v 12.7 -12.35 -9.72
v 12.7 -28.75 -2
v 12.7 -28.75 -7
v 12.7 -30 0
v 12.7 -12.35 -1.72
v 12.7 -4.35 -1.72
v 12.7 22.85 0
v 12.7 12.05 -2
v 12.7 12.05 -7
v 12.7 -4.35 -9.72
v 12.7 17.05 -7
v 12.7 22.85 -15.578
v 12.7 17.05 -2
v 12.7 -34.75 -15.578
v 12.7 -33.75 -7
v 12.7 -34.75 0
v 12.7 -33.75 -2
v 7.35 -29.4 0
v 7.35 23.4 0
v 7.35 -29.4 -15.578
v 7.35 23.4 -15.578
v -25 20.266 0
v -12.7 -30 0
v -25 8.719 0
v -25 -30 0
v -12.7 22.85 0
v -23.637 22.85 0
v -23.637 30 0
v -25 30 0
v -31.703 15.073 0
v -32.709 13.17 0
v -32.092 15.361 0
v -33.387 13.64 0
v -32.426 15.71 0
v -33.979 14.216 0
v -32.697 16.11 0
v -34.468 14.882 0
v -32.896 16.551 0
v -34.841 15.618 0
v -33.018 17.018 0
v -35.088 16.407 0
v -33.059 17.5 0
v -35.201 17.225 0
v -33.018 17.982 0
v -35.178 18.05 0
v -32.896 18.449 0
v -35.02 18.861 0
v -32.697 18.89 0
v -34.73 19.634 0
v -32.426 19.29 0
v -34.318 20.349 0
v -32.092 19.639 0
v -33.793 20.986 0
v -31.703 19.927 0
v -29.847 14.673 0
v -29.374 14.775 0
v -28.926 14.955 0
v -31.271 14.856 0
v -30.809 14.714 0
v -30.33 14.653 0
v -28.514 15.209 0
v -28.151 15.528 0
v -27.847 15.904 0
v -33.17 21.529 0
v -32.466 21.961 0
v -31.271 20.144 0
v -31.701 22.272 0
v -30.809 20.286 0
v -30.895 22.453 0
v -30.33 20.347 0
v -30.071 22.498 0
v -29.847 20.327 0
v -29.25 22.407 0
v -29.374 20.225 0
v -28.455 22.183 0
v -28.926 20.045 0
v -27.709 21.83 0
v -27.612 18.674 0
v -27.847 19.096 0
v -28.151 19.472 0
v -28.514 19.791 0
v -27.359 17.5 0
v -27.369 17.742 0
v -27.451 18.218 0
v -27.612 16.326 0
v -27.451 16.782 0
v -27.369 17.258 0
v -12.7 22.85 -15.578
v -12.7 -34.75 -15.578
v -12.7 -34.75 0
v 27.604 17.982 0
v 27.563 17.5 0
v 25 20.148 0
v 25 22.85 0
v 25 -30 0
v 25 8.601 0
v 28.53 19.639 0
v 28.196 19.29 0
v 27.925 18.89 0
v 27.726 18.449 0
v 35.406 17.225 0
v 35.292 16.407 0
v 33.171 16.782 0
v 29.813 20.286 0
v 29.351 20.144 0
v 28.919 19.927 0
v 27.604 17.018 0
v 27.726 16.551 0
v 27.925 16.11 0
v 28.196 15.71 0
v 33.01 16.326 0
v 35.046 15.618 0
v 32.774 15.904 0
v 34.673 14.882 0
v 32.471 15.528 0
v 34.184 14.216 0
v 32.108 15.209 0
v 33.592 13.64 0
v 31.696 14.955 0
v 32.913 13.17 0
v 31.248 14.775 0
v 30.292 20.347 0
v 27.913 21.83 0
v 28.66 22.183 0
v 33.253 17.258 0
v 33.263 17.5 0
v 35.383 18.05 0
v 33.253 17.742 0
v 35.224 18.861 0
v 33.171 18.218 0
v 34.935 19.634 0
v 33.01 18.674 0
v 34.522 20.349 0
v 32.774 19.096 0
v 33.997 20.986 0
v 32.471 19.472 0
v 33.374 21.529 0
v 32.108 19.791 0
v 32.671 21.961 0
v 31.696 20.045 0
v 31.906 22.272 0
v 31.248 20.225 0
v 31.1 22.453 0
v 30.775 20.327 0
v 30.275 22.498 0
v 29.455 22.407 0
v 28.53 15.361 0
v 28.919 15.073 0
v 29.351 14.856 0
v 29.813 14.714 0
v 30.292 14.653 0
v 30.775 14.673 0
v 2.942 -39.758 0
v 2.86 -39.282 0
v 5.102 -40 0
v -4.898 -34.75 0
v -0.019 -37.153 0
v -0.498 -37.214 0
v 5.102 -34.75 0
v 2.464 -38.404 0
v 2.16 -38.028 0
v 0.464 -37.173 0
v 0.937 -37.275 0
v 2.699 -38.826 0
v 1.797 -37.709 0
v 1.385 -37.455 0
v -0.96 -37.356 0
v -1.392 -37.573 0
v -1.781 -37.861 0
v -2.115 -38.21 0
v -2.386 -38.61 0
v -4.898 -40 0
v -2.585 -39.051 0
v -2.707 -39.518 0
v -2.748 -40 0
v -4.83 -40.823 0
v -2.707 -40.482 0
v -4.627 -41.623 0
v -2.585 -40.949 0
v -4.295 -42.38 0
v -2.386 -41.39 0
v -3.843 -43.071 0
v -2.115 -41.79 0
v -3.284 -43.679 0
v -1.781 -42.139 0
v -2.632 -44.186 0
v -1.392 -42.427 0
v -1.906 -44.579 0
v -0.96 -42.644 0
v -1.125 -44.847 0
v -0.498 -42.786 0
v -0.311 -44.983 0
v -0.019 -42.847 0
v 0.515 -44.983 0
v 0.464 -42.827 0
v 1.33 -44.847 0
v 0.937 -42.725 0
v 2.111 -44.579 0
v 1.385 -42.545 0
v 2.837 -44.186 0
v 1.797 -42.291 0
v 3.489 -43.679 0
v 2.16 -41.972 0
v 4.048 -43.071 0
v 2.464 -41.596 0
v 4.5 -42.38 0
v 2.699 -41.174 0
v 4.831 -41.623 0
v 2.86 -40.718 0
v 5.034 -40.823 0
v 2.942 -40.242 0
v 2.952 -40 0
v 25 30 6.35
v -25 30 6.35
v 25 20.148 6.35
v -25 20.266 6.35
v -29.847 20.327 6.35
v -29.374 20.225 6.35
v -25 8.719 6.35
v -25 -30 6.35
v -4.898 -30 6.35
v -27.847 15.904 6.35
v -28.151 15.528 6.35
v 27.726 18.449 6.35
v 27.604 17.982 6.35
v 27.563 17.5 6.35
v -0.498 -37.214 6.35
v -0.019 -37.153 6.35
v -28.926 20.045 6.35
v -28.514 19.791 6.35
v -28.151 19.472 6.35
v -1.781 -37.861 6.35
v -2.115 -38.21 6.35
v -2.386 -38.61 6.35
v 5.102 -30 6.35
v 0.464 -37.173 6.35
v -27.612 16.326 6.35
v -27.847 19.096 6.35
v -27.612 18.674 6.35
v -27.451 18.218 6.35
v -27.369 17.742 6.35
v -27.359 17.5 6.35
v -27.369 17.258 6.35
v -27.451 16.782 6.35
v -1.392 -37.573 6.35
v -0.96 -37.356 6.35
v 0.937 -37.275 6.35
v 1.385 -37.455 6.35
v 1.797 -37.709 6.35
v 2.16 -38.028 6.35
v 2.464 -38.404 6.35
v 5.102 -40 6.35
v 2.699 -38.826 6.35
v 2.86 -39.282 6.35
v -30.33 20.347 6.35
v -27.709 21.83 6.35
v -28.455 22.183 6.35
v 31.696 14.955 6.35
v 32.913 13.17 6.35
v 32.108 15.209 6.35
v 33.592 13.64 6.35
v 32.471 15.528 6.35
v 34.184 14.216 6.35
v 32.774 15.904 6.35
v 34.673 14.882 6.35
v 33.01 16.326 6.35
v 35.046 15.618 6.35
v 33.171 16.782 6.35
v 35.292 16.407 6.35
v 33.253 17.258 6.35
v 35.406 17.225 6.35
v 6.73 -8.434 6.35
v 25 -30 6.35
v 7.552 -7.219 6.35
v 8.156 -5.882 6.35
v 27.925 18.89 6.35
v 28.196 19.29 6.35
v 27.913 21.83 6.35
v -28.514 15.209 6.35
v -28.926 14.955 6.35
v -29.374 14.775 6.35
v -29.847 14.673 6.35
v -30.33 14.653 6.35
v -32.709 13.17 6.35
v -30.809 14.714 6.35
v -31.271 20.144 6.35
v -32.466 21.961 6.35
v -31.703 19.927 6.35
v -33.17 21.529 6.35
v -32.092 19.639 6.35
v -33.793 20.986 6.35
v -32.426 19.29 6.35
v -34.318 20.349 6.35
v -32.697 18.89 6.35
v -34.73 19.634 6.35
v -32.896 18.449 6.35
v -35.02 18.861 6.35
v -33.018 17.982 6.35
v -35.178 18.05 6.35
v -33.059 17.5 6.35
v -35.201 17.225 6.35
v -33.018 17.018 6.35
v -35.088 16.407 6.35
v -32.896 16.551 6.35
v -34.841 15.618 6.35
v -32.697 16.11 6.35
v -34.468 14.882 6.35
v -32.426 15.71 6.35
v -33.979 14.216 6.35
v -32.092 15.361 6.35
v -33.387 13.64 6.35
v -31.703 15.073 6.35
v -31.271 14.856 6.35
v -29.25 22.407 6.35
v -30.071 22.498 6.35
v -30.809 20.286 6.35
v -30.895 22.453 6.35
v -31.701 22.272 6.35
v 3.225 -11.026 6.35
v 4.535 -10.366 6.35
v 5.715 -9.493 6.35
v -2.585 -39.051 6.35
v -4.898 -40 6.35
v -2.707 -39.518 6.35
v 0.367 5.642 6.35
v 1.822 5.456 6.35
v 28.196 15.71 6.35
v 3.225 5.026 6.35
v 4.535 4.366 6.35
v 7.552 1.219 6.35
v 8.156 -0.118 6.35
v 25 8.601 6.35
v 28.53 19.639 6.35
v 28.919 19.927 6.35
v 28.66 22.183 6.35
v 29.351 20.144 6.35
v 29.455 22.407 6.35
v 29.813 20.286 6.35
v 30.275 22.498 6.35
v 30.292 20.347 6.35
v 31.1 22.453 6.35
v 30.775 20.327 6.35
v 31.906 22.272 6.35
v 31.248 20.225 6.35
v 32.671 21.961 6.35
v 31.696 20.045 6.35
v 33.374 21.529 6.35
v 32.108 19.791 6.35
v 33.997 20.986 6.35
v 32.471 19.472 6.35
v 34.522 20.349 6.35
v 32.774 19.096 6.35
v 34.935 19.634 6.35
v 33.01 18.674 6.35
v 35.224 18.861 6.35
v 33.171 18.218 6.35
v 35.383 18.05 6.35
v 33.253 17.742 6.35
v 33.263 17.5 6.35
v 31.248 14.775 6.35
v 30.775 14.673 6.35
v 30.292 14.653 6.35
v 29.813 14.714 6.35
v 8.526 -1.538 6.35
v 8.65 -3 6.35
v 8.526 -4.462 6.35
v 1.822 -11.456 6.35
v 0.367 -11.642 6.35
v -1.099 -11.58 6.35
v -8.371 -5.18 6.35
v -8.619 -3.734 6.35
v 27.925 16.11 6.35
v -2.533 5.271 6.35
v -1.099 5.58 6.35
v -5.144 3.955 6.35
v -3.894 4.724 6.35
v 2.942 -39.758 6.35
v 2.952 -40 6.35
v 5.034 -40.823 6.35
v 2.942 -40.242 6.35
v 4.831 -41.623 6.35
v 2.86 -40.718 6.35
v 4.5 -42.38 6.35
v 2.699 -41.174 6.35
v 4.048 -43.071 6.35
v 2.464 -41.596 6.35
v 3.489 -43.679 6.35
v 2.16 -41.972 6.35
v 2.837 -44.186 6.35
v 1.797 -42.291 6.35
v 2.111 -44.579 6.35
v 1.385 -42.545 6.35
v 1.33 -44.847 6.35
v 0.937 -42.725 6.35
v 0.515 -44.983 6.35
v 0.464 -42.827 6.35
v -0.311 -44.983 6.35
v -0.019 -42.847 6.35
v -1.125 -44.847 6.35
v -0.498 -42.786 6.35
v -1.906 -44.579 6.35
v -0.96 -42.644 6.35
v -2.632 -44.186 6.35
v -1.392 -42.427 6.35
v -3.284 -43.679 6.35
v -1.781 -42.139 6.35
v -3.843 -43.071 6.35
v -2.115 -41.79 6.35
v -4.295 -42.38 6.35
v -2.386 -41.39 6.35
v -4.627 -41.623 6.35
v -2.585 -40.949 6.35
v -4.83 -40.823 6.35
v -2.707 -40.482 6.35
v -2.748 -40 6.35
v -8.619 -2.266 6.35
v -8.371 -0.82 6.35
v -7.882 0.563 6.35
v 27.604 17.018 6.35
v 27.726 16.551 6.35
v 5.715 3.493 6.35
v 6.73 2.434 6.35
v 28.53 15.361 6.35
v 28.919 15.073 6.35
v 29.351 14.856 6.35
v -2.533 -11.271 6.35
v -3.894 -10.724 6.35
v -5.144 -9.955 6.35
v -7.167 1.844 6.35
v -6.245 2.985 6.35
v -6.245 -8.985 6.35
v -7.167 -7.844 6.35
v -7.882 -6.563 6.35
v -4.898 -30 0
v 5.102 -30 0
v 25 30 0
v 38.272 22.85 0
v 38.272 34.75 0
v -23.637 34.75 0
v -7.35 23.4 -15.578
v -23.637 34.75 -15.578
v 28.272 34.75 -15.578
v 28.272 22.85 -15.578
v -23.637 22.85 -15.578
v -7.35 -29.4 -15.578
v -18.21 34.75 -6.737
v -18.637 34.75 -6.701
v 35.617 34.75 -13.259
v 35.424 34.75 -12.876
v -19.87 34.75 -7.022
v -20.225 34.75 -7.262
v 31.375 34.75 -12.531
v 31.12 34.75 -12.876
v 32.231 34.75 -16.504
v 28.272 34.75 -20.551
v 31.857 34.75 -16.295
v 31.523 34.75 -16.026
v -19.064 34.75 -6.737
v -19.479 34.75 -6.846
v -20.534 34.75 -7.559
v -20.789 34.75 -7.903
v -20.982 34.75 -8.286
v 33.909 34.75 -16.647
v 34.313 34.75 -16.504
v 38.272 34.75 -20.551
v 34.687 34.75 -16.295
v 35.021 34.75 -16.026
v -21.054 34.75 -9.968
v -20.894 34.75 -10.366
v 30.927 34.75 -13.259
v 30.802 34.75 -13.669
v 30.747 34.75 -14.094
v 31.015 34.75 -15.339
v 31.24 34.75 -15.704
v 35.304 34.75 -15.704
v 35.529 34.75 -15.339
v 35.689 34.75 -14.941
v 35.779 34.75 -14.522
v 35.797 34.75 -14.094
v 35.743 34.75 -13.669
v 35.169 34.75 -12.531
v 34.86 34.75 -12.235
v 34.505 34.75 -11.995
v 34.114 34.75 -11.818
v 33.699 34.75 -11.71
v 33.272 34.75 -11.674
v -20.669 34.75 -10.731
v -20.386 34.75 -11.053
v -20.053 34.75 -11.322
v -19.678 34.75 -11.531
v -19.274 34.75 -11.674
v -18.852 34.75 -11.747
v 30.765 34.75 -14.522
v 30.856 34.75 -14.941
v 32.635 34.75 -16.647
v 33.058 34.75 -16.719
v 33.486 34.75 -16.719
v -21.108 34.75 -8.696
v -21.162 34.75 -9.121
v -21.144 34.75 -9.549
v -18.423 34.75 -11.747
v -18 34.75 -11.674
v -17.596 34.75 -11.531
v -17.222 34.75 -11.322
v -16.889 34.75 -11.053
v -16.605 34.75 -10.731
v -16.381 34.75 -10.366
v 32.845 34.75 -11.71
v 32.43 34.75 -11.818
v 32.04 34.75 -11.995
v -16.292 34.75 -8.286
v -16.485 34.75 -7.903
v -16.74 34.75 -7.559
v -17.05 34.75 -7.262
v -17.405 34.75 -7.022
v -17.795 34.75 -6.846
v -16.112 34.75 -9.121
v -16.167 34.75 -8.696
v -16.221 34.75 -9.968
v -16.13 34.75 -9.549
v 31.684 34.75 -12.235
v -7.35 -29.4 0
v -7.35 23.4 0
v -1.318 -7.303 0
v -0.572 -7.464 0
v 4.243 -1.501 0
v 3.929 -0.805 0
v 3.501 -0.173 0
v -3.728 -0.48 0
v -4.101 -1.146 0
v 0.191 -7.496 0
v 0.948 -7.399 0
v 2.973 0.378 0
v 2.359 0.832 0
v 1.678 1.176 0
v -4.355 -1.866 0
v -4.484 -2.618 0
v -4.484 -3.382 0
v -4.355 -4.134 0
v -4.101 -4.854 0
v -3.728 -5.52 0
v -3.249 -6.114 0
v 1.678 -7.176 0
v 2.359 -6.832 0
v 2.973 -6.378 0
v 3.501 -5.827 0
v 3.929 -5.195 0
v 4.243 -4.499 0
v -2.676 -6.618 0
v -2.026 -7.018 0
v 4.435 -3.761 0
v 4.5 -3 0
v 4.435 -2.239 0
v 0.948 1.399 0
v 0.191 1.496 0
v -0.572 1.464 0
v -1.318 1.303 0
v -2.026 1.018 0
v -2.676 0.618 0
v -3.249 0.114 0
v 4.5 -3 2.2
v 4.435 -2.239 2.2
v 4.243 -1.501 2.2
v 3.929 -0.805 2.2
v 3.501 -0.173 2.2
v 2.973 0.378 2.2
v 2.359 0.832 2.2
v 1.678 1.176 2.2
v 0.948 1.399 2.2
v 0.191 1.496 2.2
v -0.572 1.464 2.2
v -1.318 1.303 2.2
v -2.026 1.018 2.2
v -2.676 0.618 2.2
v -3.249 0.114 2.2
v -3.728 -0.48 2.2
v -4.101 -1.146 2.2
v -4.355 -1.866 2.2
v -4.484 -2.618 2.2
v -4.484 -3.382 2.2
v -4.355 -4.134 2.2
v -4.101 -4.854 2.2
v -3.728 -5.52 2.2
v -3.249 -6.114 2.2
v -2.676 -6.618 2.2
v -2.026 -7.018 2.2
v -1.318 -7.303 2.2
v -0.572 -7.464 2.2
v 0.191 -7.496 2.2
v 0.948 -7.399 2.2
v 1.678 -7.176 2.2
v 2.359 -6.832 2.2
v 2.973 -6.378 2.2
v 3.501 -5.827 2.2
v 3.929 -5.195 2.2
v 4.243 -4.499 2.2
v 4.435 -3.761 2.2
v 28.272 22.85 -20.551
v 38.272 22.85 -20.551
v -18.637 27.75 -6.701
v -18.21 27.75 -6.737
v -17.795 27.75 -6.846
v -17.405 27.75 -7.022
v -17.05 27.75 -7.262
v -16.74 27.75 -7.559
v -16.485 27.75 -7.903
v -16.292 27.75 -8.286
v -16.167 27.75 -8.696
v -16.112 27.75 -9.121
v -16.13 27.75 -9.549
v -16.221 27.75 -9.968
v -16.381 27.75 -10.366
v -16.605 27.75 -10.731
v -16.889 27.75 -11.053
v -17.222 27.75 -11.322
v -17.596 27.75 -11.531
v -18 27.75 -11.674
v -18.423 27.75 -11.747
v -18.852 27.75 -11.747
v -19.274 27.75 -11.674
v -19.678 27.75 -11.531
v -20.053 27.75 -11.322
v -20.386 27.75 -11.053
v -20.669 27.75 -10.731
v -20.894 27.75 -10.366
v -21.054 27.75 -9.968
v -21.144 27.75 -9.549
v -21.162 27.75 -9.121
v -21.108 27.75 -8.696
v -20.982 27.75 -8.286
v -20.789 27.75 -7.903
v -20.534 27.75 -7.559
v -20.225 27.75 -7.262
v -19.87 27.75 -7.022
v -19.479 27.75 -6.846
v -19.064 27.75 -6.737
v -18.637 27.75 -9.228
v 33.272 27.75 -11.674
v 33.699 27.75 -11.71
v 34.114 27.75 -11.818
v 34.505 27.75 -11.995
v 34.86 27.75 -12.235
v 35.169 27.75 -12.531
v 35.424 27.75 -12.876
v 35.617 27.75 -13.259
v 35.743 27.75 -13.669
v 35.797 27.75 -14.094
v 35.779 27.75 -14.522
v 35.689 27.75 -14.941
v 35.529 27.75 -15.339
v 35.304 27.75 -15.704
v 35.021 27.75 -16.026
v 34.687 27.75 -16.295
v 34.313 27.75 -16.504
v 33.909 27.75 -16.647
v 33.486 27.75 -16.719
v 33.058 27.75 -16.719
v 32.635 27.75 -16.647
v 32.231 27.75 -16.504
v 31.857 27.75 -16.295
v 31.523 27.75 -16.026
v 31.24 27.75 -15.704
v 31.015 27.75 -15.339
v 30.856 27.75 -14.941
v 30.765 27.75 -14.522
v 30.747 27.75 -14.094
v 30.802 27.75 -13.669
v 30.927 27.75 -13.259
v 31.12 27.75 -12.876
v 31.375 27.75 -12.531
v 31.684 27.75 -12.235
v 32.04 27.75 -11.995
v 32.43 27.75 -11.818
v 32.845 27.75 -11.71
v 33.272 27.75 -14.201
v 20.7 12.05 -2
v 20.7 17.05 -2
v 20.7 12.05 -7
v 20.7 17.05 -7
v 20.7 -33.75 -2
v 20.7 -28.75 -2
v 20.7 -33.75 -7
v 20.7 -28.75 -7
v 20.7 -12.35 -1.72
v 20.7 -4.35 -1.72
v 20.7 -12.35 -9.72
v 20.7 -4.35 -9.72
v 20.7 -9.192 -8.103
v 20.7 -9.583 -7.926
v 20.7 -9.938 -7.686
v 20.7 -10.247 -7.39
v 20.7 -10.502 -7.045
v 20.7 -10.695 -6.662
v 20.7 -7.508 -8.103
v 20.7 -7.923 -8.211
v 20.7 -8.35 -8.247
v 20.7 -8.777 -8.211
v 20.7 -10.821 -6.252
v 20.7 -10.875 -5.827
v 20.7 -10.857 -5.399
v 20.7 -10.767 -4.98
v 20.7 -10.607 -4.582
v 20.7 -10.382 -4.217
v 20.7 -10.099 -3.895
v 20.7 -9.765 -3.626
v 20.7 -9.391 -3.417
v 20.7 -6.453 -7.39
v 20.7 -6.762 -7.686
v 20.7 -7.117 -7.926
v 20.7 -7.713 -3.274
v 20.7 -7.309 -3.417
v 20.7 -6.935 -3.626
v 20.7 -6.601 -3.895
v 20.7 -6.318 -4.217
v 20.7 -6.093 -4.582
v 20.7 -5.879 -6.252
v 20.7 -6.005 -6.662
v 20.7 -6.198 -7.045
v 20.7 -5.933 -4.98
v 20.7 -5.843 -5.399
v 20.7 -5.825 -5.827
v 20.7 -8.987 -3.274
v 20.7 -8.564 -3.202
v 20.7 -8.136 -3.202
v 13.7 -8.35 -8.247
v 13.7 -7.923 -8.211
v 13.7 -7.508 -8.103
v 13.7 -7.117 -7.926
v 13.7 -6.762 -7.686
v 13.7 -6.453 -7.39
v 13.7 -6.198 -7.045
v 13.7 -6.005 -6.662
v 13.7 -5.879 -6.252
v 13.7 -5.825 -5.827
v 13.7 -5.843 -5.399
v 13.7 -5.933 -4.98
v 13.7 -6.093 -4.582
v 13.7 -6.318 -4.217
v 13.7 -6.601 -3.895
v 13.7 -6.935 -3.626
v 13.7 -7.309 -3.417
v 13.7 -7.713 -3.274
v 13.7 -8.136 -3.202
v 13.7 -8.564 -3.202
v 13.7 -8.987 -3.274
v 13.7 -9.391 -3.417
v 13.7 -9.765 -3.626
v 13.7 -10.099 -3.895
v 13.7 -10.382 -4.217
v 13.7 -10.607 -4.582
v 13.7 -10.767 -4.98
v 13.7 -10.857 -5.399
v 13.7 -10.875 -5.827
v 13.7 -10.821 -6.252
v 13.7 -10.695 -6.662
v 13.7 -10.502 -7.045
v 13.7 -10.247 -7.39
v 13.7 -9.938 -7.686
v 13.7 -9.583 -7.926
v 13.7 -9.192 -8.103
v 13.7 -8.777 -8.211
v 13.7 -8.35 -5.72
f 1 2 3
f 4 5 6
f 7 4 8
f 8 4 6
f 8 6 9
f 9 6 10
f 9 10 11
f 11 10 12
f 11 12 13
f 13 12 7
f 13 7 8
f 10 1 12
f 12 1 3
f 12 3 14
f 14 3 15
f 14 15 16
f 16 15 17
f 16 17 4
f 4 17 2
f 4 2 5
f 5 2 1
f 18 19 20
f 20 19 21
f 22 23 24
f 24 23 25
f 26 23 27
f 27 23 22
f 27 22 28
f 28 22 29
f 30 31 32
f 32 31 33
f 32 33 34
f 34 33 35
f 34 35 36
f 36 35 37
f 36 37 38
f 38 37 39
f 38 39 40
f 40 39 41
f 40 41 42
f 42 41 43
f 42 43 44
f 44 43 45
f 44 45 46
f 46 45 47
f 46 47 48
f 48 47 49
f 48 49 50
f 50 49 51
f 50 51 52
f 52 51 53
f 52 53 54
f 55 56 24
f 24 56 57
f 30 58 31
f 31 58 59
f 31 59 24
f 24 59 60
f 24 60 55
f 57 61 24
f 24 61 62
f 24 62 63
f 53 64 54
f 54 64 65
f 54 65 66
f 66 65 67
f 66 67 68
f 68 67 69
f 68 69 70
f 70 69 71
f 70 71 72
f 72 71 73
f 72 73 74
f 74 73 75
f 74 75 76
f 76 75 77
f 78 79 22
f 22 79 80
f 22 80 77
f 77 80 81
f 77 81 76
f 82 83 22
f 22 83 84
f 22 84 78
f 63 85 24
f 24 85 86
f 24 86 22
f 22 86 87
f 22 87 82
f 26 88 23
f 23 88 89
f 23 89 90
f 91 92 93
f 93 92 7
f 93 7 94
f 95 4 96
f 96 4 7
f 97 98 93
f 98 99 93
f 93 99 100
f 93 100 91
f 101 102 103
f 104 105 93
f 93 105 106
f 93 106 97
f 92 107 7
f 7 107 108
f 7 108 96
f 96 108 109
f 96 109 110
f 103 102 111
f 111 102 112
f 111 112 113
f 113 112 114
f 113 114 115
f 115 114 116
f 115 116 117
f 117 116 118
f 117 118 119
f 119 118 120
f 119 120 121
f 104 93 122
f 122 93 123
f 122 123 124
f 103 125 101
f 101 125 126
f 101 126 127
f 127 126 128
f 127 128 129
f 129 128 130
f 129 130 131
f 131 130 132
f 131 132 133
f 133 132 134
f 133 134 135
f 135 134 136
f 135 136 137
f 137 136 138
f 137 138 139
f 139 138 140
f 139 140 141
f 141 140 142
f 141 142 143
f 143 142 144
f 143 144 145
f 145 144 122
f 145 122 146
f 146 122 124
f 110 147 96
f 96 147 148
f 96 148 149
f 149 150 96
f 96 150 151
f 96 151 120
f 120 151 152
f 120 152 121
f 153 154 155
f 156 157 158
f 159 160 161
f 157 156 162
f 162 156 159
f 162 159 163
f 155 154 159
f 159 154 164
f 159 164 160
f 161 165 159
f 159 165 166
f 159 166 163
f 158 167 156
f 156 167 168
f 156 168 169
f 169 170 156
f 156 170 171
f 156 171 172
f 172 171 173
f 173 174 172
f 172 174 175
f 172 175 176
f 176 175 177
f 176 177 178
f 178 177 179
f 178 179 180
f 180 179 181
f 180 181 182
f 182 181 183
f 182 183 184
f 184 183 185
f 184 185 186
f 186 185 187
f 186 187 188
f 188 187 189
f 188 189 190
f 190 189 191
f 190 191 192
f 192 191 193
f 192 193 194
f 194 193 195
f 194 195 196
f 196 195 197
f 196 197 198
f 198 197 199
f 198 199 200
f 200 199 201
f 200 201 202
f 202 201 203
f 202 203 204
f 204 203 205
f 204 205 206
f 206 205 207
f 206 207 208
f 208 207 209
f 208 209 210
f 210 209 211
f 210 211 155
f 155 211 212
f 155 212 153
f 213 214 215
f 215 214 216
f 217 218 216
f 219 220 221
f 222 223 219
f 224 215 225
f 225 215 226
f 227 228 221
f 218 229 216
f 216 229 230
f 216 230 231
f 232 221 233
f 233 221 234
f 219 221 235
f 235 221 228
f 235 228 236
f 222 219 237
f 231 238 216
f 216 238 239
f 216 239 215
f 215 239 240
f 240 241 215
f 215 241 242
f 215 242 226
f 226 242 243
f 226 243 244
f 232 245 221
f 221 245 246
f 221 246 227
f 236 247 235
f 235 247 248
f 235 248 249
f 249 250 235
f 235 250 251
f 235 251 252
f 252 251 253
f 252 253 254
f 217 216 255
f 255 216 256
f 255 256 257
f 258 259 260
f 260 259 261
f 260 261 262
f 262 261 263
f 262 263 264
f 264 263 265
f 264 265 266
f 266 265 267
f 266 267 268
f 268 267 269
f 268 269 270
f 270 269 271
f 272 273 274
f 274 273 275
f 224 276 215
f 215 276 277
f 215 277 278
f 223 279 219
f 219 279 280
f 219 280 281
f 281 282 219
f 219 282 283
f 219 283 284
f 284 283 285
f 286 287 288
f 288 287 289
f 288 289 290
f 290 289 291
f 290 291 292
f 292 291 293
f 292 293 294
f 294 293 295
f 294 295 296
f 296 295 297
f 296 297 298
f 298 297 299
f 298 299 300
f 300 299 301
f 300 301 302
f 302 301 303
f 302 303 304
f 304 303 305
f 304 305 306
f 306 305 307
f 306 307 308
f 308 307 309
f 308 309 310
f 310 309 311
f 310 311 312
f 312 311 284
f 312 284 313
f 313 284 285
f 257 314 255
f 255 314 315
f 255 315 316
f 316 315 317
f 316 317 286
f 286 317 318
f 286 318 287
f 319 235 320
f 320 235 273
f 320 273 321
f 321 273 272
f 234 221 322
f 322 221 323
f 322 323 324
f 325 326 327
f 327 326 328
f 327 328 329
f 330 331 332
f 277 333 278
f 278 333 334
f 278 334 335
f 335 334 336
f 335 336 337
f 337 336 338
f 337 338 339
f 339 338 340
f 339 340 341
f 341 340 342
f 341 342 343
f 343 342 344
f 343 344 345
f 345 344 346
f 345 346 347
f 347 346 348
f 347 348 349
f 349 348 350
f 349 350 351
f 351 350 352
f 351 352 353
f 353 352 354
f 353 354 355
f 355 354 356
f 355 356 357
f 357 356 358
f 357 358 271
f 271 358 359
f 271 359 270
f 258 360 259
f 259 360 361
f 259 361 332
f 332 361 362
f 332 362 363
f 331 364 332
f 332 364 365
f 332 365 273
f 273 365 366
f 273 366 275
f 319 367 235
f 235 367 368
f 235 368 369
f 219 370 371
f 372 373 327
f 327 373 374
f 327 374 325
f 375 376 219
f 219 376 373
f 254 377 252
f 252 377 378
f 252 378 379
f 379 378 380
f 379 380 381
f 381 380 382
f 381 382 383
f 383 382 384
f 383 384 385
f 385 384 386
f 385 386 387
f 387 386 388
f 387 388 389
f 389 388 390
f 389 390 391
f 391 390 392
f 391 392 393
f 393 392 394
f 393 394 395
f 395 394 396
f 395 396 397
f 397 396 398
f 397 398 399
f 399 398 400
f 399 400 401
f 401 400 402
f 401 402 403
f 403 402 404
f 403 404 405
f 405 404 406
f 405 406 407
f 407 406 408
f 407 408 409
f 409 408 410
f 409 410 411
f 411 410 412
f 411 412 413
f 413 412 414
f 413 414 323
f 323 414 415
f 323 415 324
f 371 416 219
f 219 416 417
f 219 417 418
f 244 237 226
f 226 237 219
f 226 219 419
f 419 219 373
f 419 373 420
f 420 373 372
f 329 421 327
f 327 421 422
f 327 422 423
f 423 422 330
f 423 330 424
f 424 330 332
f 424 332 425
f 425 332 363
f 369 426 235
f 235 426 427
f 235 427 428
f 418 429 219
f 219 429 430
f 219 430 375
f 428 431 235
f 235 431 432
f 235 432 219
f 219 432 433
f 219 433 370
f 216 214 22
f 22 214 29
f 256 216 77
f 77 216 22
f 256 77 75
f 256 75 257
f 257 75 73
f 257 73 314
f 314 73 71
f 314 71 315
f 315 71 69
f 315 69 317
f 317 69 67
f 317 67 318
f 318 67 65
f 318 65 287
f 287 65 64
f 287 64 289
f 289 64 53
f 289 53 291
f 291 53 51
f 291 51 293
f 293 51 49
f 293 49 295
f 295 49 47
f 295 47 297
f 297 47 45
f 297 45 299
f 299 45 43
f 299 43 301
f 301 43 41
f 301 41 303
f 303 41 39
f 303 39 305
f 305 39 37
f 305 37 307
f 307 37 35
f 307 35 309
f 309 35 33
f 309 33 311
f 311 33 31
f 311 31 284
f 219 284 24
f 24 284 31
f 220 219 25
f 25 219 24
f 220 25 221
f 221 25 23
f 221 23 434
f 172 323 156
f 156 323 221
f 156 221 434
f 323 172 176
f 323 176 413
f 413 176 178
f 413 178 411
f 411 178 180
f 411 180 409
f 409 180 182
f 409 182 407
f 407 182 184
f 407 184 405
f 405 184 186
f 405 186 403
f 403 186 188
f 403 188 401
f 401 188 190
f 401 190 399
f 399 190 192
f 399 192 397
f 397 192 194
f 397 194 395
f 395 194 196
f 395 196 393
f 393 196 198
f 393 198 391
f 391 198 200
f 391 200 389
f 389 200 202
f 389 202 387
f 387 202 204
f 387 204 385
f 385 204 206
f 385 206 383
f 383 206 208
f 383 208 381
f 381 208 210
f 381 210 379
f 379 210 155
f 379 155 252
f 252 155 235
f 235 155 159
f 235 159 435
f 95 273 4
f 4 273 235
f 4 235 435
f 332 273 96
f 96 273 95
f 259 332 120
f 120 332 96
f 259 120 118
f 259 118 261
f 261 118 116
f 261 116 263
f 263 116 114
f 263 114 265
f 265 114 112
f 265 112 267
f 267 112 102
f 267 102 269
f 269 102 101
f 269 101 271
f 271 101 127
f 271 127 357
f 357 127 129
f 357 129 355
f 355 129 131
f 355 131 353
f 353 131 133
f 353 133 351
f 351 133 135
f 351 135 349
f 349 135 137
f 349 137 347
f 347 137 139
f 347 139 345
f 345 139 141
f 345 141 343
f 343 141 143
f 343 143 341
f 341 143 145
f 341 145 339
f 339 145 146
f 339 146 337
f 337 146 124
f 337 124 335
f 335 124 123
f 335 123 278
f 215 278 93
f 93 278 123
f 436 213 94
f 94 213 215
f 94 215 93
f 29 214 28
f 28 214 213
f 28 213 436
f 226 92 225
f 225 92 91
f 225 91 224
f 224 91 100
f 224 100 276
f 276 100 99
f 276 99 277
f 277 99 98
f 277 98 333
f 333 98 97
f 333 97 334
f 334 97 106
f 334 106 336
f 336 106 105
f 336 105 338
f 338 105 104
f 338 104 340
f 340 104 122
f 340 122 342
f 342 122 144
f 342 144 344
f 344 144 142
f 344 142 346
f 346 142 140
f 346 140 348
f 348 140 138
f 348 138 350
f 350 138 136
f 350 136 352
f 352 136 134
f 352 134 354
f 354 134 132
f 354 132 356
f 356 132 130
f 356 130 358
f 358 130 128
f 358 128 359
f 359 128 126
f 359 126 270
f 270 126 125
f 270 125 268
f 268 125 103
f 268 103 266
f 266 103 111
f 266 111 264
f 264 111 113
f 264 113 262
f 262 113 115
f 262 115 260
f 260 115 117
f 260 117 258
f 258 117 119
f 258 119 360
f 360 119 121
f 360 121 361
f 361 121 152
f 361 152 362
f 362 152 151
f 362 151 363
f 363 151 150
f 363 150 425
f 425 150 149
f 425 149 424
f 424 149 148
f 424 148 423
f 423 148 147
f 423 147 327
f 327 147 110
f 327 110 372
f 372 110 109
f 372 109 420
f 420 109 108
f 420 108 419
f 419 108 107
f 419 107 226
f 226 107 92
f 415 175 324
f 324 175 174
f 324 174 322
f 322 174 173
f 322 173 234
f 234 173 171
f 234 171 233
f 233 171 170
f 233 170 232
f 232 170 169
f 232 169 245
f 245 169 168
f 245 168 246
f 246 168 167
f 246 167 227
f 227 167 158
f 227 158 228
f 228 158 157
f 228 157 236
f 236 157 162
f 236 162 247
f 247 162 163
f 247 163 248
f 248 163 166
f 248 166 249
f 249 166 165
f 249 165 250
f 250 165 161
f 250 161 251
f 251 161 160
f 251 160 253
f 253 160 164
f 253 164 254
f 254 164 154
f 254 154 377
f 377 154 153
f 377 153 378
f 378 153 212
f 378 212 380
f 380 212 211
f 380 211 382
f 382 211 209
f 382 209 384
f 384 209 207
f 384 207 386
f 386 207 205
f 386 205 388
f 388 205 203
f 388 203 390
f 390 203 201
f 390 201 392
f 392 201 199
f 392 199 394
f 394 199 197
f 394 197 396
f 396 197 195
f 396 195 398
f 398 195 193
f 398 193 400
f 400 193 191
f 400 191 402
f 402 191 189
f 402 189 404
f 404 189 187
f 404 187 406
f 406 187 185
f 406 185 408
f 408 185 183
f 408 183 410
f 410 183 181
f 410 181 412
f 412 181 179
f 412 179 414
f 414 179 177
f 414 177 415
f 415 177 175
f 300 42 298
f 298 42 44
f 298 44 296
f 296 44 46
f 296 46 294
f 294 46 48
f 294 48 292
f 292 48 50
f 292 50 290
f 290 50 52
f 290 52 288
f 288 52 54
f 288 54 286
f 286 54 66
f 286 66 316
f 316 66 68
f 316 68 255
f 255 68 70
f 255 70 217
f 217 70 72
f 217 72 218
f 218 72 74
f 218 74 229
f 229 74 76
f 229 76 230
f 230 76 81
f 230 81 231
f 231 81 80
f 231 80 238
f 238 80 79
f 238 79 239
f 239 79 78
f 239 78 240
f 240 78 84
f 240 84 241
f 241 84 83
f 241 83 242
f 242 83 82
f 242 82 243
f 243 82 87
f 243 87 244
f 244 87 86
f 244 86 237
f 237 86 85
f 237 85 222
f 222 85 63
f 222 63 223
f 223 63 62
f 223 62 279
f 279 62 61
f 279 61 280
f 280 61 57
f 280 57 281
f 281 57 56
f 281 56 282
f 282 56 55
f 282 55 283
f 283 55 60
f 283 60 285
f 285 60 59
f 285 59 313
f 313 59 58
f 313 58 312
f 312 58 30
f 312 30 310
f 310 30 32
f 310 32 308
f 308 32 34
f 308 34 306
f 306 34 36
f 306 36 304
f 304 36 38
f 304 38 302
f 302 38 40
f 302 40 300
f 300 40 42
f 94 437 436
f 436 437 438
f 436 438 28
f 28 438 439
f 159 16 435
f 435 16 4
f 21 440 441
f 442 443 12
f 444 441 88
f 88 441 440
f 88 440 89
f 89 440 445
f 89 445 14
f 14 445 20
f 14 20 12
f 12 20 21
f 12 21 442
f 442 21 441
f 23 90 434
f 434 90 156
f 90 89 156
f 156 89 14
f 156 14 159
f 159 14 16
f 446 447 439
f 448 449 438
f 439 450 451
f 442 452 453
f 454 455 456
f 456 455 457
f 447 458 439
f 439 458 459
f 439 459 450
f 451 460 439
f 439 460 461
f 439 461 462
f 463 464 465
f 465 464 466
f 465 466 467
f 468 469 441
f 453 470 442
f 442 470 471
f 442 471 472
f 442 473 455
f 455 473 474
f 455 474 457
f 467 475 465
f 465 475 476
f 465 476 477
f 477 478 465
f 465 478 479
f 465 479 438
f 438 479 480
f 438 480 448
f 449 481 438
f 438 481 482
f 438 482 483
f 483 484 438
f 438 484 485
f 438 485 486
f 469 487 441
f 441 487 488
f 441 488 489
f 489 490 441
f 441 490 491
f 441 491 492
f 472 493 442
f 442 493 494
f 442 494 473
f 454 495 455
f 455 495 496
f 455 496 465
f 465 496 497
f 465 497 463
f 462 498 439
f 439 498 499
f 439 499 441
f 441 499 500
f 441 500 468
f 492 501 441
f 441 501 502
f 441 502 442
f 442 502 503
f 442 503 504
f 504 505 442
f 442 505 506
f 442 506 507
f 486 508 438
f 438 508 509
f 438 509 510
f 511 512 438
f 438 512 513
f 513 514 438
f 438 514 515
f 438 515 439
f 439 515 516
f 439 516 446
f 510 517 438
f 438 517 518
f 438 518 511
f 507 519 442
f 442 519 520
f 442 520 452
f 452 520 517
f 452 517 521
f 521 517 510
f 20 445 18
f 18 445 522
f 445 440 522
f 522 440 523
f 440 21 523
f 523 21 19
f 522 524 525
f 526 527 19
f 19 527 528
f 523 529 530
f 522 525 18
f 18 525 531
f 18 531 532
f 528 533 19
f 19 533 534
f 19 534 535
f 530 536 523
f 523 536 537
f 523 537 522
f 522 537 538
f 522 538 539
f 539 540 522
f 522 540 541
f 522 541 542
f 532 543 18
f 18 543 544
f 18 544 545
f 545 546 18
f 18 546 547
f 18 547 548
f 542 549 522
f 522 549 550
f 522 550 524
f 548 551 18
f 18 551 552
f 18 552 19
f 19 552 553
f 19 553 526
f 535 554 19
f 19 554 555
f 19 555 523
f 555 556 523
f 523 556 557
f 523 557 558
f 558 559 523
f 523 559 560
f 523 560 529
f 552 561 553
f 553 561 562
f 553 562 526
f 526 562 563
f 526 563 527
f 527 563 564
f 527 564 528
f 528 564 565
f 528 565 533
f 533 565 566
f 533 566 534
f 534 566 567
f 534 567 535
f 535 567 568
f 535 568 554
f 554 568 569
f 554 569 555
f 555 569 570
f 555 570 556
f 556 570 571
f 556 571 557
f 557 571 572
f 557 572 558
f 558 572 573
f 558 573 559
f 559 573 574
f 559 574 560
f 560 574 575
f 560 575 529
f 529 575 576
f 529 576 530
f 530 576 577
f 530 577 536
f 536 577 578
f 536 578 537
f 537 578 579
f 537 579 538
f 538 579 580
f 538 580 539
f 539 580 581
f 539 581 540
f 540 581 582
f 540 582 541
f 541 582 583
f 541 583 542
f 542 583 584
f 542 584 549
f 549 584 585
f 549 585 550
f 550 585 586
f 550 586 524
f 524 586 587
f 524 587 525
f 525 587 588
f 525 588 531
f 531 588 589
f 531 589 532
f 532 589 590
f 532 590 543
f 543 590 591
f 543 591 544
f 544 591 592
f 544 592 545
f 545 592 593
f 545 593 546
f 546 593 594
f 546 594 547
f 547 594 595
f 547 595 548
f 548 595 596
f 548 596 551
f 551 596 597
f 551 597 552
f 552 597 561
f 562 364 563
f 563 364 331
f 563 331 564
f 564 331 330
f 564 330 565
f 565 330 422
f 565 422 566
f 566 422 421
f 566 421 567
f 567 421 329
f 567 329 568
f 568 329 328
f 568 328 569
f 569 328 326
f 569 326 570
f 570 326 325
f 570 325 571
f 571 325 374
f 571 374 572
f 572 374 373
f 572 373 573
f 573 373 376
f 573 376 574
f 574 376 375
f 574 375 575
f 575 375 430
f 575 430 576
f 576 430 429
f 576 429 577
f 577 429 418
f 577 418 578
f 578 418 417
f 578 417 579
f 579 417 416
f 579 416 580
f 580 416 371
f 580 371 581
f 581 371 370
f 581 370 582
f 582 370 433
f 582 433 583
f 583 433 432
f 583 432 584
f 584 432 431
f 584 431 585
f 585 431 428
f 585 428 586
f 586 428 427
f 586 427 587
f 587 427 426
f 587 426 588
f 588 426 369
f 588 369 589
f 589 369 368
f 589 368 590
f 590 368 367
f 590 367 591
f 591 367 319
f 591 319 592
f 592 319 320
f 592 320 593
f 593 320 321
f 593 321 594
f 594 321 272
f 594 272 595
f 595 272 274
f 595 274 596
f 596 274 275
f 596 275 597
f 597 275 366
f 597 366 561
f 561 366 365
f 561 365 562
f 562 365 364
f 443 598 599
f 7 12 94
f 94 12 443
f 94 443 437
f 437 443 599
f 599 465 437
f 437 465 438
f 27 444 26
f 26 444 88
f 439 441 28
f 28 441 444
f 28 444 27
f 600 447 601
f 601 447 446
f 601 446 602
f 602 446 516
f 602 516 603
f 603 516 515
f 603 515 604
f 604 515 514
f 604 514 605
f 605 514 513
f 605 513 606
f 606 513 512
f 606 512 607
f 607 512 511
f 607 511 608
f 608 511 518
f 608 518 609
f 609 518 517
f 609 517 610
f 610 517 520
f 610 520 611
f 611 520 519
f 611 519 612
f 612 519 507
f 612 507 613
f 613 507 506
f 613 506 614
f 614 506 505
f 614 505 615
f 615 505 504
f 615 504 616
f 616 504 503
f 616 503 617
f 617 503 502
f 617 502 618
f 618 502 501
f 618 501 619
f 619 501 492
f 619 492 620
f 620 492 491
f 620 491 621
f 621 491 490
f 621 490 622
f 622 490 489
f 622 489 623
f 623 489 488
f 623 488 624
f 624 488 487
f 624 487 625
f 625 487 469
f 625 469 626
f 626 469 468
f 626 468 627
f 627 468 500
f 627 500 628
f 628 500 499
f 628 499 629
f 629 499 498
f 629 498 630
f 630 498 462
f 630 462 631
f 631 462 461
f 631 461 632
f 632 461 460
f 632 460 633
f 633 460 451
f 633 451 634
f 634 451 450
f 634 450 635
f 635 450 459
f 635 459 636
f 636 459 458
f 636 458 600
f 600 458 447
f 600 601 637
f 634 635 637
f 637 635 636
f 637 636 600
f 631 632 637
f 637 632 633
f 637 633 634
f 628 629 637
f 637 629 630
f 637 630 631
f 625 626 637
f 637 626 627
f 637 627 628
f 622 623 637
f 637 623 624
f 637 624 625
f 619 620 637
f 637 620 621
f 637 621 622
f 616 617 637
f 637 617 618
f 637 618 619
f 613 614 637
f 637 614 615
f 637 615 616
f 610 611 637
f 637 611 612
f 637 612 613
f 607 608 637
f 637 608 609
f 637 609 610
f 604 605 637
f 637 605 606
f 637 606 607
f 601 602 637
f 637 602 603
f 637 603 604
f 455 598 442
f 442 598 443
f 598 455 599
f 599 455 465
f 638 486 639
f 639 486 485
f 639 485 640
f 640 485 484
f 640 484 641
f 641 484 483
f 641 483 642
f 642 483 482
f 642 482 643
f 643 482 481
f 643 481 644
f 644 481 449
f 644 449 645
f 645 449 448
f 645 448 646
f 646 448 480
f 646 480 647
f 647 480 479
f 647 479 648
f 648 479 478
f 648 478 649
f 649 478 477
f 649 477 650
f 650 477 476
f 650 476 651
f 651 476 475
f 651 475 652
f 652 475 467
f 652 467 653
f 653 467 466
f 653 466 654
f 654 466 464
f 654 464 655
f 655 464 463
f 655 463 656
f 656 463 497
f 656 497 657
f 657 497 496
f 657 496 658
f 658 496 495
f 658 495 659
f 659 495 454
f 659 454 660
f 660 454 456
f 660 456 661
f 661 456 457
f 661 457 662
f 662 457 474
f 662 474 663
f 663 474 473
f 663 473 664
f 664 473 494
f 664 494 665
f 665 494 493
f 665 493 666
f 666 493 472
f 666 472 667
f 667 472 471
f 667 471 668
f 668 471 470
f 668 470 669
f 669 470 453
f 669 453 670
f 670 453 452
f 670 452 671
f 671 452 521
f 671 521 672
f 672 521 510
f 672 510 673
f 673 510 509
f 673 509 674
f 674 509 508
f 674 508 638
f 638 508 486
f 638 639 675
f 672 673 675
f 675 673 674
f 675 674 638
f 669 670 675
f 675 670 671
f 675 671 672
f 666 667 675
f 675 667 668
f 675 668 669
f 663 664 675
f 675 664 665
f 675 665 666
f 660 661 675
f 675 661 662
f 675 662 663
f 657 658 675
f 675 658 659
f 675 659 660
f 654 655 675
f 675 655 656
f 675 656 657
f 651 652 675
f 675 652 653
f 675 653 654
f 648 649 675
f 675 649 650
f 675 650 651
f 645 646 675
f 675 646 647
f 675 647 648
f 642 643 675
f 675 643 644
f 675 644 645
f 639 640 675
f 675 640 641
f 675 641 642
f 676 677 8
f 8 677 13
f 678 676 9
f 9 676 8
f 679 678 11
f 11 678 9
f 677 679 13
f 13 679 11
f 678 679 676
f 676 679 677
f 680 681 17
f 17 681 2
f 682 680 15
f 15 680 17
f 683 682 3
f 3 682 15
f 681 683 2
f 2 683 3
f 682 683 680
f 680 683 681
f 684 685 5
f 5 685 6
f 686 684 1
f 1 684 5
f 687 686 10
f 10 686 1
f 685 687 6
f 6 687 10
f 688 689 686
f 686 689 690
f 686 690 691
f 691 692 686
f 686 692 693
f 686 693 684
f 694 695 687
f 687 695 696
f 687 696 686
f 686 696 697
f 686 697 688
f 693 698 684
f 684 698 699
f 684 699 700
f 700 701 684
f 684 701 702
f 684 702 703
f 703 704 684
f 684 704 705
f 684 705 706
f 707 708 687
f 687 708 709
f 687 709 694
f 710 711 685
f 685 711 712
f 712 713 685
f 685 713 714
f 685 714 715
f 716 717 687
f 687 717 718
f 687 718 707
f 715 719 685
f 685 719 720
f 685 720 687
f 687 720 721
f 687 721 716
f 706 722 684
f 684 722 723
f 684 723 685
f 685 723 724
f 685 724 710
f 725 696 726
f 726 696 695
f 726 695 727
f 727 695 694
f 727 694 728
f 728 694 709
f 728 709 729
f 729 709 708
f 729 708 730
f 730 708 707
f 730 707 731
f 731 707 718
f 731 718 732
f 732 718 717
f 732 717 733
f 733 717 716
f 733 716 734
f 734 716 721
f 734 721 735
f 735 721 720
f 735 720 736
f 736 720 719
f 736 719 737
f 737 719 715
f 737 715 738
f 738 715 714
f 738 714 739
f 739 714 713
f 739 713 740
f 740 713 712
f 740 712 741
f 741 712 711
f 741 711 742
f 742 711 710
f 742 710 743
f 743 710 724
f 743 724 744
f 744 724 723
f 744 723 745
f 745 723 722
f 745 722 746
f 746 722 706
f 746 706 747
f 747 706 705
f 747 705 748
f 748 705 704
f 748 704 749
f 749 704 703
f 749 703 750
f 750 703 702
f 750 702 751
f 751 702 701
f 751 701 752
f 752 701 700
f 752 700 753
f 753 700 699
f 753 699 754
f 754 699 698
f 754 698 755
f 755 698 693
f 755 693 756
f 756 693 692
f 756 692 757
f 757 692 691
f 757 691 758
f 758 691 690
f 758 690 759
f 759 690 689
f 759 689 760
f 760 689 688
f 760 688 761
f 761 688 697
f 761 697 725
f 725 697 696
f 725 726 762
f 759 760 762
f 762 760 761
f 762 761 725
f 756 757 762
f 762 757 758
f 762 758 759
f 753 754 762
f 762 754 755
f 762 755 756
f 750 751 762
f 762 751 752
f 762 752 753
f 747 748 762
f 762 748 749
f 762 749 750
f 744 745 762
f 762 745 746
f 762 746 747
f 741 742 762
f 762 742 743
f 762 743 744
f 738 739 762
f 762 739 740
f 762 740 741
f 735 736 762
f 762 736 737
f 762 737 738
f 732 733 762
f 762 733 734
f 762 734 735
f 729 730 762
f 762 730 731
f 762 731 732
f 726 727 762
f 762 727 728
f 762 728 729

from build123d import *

# Parameters (mm, degrees)
SKETCH1_R                                       = 2.85
BOSS_EXTRUDE1_DEPTH                             = 6.35
SKETCH2_W                                       = 25.4
SKETCH2_H                                       = 69.5
SKETCH2_W_2                                     = 14.7
SKETCH2_H_2                                     = 52.8
BOSS_EXTRUDE2_DEPTH                             = 15.578435
CSK_FOR_M8_FLAT_HEAD_MACHINE_SCREW1_D           = 9
CSK_FOR_M8_FLAT_HEAD_MACHINE_SCREW1_DEPTH       = 17.5
CSK_FOR_M8_FLAT_HEAD_MACHINE_SCREW1_CSINK_D     = 17.3
CSK_FOR_M8_FLAT_HEAD_MACHINE_SCREW1_CSINK_ANGLE = 90
CSK_FOR_M8_FLAT_HEAD_MACHINE_SCREW1_TIP         = 2.703872786
SKETCH6_W                                       = 15.578435
SKETCH6_H                                       = 11.9
BOSS_EXTRUDE3_DEPTH                             = 25.572145
SKETCH7_W                                       = 15.578435
SKETCH7_H                                       = 11.9
BOSS_EXTRUDE4_DEPTH                             = 10.937286
SKETCH8_R                                       = 2.5273
CUT_EXTRUDE1_DEPTH                              = 7
SKETCH9_W                                       = 10
SKETCH9_H                                       = 11.9
BOSS_EXTRUDE5_DEPTH                             = 4.972688
SKETCH10_R                                      = 2.5273
CUT_EXTRUDE2_DEPTH                              = 7
SKETCH11_W                                      = 5.3384196
SKETCH11_H                                      = 10
BOSS_EXTRUDE6_DEPTH                             = 5.35
SKETCH14_W                                      = 5.35
SKETCH14_H                                      = 10
CUT_EXTRUDE4_DEPTH                              = 5.33842
SKETCH15_W                                      = 5
SKETCH15_H                                      = 5
SKETCH15_W_2                                    = 8
SKETCH15_H_2                                    = 8
BOSS_EXTRUDE7_DEPTH                             = 8
SKETCH16_R                                      = 2.5273
CUT_EXTRUDE5_DEPTH                              = 7


with BuildPart() as part:
    # Sketch1 → Boss-Extrude1 (new body)
    with BuildSketch(Plane.XY):
        with BuildLine():
            Line((-5, 30), (5, 30))
            Line((5, 30), (25, 30))
            Line((25, 30), (25, 20.148215542))
            Line((25, 20.148215542), (27.91315613, 21.830127018))
            ThreePointArc((27.91315613, 21.830127018), (34.743283149, 19.999999999), (32.91315613, 13.16987298))
            Line((32.91315613, 13.16987298), (25, 8.601210158))
            Line((25, 8.601210158), (25, -30))
            Line((25, -30), (5.102267, -30))
            Line((5.102267, -30), (5.102267, -40))
            ThreePointArc((5.102267, -40), (0.102267, -45), (-4.897733, -40))
            Line((-4.897733, -40), (-4.897733, -30))
            Line((-4.897733, -30), (-25, -30))
            Line((-25, -30), (-25, 8.719297918))
            Line((-25, 8.719297918), (-32.70862213, 13.16987298))
            ThreePointArc((-32.70862213, 13.16987298), (-34.538749149, 19.999999999), (-27.70862213, 21.830127018))
            Line((-27.70862213, 21.830127018), (-25, 20.266303302))
            Line((-25, 20.266303302), (-25, 30))
            Line((-25, 30), (-5, 30))
        make_face()
        with Locations((0.102267, -40)):
            Circle(SKETCH1_R, mode=Mode.SUBTRACT)
        with Locations((30.41315613, 17.499999999)):
            Circle(SKETCH1_R, mode=Mode.SUBTRACT)
        with Locations((-30.20862213, 17.499999999)):
            Circle(SKETCH1_R, mode=Mode.SUBTRACT)
    extrude(amount=BOSS_EXTRUDE1_DEPTH)

    # Sketch2 → Boss-Extrude2 (add)
    with BuildSketch(Plane(origin=(0, 0, 0), x_dir=(-1, 0, 0), z_dir=(0, 0, -1))):
        Rectangle(SKETCH2_W, SKETCH2_H)
        with Locations((0, -3)):
            Rectangle(SKETCH2_W_2, SKETCH2_H_2, mode=Mode.SUBTRACT)
    extrude(amount=BOSS_EXTRUDE2_DEPTH)

    # CSK for M8 Flat Head Machine Screw1
    with Locations(Plane.XY.offset(6.35)):
        with Locations((0, -3)):
            CounterSinkHole(CSK_FOR_M8_FLAT_HEAD_MACHINE_SCREW1_D / 2, CSK_FOR_M8_FLAT_HEAD_MACHINE_SCREW1_CSINK_D / 2, depth=CSK_FOR_M8_FLAT_HEAD_MACHINE_SCREW1_DEPTH, counter_sink_angle=CSK_FOR_M8_FLAT_HEAD_MACHINE_SCREW1_CSINK_ANGLE)
            with Locations((0, 0, -(CSK_FOR_M8_FLAT_HEAD_MACHINE_SCREW1_DEPTH + CSK_FOR_M8_FLAT_HEAD_MACHINE_SCREW1_TIP / 2))):  # 118° drill point
                Cone(0, CSK_FOR_M8_FLAT_HEAD_MACHINE_SCREW1_D / 2, CSK_FOR_M8_FLAT_HEAD_MACHINE_SCREW1_TIP, mode=Mode.SUBTRACT)

    # Sketch6 → Boss-Extrude3 (add)
    with BuildSketch(Plane(origin=(12.7, 0, 0), x_dir=(0, 0, -1), z_dir=(1, 0, 0))):
        with Locations((7.7892175, 28.8)):
            Rectangle(SKETCH6_W, SKETCH6_H)
    extrude(amount=BOSS_EXTRUDE3_DEPTH)

    # Sketch7 → Boss-Extrude4 (add)
    with BuildSketch(Plane.ZY.offset(12.7)):
        with Locations((-7.7892175, 28.8)):
            Rectangle(SKETCH7_W, SKETCH7_H)
    extrude(amount=BOSS_EXTRUDE4_DEPTH)

    # Sketch8 → Cut-Extrude1 (cut)
    with BuildSketch(Plane(origin=(0, 34.75, 0), x_dir=(1, 0, 0), z_dir=(0, 1, 0))):
        with Locations((-18.637286, 9.228435)):
            Circle(SKETCH8_R)
    extrude(amount=-CUT_EXTRUDE1_DEPTH, mode=Mode.SUBTRACT)

    # Sketch9 → Boss-Extrude5 (add)
    with BuildSketch(Plane(origin=(0, 0, -15.578435), x_dir=(-1, 0, 0), z_dir=(0, 0, -1))):
        with Locations((-33.272145, 28.8)):
            Rectangle(SKETCH9_W, SKETCH9_H)
    extrude(amount=BOSS_EXTRUDE5_DEPTH)

    # Sketch10 → Cut-Extrude2 (cut)
    with BuildSketch(Plane(origin=(0, 34.75, 0), x_dir=(1, 0, 0), z_dir=(0, 1, 0))):
        with Locations((33.272145, 14.201123)):
            Circle(SKETCH10_R)
    extrude(amount=-CUT_EXTRUDE2_DEPTH, mode=Mode.SUBTRACT)

    # Sketch11 → Boss-Extrude6 (add)
    with BuildSketch(Plane(origin=(12.7, 0, 0), x_dir=(0, 0, -1), z_dir=(1, 0, 0))):
        with Locations((18.2476448, -8.175)):
            Rectangle(SKETCH11_W, SKETCH11_H)
    extrude(amount=-BOSS_EXTRUDE6_DEPTH)

    # Sketch14 → Cut-Extrude4 (cut)
    with BuildSketch(Plane(origin=(0, 0, -20.9168546), x_dir=(-1, 0, 0), z_dir=(0, 0, -1))):
        with Locations((-10.025, -8.175)):
            Rectangle(SKETCH14_W, SKETCH14_H)
    extrude(amount=-CUT_EXTRUDE4_DEPTH, mode=Mode.SUBTRACT)

    # Sketch15 → Boss-Extrude7 (add)
    with BuildSketch(Plane(origin=(12.7, 0, 0), x_dir=(0, 0, -1), z_dir=(1, 0, 0))):
        with Locations((4.5, 14.55)):
            Rectangle(SKETCH15_W, SKETCH15_H)
        with Locations((4.5, -31.25)):
            Rectangle(SKETCH15_W, SKETCH15_H)
        with Locations((5.72, -8.35)):
            Rectangle(SKETCH15_W_2, SKETCH15_H_2)
    extrude(amount=BOSS_EXTRUDE7_DEPTH)

    # Sketch16 → Cut-Extrude5 (cut)
    with BuildSketch(Plane(origin=(20.7, 0, 0), x_dir=(0, 0, -1), z_dir=(1, 0, 0))):
        with Locations((5.72, -8.35)):
            Circle(SKETCH16_R)
    extrude(amount=-CUT_EXTRUDE5_DEPTH, mode=Mode.SUBTRACT)


solid = part.part
